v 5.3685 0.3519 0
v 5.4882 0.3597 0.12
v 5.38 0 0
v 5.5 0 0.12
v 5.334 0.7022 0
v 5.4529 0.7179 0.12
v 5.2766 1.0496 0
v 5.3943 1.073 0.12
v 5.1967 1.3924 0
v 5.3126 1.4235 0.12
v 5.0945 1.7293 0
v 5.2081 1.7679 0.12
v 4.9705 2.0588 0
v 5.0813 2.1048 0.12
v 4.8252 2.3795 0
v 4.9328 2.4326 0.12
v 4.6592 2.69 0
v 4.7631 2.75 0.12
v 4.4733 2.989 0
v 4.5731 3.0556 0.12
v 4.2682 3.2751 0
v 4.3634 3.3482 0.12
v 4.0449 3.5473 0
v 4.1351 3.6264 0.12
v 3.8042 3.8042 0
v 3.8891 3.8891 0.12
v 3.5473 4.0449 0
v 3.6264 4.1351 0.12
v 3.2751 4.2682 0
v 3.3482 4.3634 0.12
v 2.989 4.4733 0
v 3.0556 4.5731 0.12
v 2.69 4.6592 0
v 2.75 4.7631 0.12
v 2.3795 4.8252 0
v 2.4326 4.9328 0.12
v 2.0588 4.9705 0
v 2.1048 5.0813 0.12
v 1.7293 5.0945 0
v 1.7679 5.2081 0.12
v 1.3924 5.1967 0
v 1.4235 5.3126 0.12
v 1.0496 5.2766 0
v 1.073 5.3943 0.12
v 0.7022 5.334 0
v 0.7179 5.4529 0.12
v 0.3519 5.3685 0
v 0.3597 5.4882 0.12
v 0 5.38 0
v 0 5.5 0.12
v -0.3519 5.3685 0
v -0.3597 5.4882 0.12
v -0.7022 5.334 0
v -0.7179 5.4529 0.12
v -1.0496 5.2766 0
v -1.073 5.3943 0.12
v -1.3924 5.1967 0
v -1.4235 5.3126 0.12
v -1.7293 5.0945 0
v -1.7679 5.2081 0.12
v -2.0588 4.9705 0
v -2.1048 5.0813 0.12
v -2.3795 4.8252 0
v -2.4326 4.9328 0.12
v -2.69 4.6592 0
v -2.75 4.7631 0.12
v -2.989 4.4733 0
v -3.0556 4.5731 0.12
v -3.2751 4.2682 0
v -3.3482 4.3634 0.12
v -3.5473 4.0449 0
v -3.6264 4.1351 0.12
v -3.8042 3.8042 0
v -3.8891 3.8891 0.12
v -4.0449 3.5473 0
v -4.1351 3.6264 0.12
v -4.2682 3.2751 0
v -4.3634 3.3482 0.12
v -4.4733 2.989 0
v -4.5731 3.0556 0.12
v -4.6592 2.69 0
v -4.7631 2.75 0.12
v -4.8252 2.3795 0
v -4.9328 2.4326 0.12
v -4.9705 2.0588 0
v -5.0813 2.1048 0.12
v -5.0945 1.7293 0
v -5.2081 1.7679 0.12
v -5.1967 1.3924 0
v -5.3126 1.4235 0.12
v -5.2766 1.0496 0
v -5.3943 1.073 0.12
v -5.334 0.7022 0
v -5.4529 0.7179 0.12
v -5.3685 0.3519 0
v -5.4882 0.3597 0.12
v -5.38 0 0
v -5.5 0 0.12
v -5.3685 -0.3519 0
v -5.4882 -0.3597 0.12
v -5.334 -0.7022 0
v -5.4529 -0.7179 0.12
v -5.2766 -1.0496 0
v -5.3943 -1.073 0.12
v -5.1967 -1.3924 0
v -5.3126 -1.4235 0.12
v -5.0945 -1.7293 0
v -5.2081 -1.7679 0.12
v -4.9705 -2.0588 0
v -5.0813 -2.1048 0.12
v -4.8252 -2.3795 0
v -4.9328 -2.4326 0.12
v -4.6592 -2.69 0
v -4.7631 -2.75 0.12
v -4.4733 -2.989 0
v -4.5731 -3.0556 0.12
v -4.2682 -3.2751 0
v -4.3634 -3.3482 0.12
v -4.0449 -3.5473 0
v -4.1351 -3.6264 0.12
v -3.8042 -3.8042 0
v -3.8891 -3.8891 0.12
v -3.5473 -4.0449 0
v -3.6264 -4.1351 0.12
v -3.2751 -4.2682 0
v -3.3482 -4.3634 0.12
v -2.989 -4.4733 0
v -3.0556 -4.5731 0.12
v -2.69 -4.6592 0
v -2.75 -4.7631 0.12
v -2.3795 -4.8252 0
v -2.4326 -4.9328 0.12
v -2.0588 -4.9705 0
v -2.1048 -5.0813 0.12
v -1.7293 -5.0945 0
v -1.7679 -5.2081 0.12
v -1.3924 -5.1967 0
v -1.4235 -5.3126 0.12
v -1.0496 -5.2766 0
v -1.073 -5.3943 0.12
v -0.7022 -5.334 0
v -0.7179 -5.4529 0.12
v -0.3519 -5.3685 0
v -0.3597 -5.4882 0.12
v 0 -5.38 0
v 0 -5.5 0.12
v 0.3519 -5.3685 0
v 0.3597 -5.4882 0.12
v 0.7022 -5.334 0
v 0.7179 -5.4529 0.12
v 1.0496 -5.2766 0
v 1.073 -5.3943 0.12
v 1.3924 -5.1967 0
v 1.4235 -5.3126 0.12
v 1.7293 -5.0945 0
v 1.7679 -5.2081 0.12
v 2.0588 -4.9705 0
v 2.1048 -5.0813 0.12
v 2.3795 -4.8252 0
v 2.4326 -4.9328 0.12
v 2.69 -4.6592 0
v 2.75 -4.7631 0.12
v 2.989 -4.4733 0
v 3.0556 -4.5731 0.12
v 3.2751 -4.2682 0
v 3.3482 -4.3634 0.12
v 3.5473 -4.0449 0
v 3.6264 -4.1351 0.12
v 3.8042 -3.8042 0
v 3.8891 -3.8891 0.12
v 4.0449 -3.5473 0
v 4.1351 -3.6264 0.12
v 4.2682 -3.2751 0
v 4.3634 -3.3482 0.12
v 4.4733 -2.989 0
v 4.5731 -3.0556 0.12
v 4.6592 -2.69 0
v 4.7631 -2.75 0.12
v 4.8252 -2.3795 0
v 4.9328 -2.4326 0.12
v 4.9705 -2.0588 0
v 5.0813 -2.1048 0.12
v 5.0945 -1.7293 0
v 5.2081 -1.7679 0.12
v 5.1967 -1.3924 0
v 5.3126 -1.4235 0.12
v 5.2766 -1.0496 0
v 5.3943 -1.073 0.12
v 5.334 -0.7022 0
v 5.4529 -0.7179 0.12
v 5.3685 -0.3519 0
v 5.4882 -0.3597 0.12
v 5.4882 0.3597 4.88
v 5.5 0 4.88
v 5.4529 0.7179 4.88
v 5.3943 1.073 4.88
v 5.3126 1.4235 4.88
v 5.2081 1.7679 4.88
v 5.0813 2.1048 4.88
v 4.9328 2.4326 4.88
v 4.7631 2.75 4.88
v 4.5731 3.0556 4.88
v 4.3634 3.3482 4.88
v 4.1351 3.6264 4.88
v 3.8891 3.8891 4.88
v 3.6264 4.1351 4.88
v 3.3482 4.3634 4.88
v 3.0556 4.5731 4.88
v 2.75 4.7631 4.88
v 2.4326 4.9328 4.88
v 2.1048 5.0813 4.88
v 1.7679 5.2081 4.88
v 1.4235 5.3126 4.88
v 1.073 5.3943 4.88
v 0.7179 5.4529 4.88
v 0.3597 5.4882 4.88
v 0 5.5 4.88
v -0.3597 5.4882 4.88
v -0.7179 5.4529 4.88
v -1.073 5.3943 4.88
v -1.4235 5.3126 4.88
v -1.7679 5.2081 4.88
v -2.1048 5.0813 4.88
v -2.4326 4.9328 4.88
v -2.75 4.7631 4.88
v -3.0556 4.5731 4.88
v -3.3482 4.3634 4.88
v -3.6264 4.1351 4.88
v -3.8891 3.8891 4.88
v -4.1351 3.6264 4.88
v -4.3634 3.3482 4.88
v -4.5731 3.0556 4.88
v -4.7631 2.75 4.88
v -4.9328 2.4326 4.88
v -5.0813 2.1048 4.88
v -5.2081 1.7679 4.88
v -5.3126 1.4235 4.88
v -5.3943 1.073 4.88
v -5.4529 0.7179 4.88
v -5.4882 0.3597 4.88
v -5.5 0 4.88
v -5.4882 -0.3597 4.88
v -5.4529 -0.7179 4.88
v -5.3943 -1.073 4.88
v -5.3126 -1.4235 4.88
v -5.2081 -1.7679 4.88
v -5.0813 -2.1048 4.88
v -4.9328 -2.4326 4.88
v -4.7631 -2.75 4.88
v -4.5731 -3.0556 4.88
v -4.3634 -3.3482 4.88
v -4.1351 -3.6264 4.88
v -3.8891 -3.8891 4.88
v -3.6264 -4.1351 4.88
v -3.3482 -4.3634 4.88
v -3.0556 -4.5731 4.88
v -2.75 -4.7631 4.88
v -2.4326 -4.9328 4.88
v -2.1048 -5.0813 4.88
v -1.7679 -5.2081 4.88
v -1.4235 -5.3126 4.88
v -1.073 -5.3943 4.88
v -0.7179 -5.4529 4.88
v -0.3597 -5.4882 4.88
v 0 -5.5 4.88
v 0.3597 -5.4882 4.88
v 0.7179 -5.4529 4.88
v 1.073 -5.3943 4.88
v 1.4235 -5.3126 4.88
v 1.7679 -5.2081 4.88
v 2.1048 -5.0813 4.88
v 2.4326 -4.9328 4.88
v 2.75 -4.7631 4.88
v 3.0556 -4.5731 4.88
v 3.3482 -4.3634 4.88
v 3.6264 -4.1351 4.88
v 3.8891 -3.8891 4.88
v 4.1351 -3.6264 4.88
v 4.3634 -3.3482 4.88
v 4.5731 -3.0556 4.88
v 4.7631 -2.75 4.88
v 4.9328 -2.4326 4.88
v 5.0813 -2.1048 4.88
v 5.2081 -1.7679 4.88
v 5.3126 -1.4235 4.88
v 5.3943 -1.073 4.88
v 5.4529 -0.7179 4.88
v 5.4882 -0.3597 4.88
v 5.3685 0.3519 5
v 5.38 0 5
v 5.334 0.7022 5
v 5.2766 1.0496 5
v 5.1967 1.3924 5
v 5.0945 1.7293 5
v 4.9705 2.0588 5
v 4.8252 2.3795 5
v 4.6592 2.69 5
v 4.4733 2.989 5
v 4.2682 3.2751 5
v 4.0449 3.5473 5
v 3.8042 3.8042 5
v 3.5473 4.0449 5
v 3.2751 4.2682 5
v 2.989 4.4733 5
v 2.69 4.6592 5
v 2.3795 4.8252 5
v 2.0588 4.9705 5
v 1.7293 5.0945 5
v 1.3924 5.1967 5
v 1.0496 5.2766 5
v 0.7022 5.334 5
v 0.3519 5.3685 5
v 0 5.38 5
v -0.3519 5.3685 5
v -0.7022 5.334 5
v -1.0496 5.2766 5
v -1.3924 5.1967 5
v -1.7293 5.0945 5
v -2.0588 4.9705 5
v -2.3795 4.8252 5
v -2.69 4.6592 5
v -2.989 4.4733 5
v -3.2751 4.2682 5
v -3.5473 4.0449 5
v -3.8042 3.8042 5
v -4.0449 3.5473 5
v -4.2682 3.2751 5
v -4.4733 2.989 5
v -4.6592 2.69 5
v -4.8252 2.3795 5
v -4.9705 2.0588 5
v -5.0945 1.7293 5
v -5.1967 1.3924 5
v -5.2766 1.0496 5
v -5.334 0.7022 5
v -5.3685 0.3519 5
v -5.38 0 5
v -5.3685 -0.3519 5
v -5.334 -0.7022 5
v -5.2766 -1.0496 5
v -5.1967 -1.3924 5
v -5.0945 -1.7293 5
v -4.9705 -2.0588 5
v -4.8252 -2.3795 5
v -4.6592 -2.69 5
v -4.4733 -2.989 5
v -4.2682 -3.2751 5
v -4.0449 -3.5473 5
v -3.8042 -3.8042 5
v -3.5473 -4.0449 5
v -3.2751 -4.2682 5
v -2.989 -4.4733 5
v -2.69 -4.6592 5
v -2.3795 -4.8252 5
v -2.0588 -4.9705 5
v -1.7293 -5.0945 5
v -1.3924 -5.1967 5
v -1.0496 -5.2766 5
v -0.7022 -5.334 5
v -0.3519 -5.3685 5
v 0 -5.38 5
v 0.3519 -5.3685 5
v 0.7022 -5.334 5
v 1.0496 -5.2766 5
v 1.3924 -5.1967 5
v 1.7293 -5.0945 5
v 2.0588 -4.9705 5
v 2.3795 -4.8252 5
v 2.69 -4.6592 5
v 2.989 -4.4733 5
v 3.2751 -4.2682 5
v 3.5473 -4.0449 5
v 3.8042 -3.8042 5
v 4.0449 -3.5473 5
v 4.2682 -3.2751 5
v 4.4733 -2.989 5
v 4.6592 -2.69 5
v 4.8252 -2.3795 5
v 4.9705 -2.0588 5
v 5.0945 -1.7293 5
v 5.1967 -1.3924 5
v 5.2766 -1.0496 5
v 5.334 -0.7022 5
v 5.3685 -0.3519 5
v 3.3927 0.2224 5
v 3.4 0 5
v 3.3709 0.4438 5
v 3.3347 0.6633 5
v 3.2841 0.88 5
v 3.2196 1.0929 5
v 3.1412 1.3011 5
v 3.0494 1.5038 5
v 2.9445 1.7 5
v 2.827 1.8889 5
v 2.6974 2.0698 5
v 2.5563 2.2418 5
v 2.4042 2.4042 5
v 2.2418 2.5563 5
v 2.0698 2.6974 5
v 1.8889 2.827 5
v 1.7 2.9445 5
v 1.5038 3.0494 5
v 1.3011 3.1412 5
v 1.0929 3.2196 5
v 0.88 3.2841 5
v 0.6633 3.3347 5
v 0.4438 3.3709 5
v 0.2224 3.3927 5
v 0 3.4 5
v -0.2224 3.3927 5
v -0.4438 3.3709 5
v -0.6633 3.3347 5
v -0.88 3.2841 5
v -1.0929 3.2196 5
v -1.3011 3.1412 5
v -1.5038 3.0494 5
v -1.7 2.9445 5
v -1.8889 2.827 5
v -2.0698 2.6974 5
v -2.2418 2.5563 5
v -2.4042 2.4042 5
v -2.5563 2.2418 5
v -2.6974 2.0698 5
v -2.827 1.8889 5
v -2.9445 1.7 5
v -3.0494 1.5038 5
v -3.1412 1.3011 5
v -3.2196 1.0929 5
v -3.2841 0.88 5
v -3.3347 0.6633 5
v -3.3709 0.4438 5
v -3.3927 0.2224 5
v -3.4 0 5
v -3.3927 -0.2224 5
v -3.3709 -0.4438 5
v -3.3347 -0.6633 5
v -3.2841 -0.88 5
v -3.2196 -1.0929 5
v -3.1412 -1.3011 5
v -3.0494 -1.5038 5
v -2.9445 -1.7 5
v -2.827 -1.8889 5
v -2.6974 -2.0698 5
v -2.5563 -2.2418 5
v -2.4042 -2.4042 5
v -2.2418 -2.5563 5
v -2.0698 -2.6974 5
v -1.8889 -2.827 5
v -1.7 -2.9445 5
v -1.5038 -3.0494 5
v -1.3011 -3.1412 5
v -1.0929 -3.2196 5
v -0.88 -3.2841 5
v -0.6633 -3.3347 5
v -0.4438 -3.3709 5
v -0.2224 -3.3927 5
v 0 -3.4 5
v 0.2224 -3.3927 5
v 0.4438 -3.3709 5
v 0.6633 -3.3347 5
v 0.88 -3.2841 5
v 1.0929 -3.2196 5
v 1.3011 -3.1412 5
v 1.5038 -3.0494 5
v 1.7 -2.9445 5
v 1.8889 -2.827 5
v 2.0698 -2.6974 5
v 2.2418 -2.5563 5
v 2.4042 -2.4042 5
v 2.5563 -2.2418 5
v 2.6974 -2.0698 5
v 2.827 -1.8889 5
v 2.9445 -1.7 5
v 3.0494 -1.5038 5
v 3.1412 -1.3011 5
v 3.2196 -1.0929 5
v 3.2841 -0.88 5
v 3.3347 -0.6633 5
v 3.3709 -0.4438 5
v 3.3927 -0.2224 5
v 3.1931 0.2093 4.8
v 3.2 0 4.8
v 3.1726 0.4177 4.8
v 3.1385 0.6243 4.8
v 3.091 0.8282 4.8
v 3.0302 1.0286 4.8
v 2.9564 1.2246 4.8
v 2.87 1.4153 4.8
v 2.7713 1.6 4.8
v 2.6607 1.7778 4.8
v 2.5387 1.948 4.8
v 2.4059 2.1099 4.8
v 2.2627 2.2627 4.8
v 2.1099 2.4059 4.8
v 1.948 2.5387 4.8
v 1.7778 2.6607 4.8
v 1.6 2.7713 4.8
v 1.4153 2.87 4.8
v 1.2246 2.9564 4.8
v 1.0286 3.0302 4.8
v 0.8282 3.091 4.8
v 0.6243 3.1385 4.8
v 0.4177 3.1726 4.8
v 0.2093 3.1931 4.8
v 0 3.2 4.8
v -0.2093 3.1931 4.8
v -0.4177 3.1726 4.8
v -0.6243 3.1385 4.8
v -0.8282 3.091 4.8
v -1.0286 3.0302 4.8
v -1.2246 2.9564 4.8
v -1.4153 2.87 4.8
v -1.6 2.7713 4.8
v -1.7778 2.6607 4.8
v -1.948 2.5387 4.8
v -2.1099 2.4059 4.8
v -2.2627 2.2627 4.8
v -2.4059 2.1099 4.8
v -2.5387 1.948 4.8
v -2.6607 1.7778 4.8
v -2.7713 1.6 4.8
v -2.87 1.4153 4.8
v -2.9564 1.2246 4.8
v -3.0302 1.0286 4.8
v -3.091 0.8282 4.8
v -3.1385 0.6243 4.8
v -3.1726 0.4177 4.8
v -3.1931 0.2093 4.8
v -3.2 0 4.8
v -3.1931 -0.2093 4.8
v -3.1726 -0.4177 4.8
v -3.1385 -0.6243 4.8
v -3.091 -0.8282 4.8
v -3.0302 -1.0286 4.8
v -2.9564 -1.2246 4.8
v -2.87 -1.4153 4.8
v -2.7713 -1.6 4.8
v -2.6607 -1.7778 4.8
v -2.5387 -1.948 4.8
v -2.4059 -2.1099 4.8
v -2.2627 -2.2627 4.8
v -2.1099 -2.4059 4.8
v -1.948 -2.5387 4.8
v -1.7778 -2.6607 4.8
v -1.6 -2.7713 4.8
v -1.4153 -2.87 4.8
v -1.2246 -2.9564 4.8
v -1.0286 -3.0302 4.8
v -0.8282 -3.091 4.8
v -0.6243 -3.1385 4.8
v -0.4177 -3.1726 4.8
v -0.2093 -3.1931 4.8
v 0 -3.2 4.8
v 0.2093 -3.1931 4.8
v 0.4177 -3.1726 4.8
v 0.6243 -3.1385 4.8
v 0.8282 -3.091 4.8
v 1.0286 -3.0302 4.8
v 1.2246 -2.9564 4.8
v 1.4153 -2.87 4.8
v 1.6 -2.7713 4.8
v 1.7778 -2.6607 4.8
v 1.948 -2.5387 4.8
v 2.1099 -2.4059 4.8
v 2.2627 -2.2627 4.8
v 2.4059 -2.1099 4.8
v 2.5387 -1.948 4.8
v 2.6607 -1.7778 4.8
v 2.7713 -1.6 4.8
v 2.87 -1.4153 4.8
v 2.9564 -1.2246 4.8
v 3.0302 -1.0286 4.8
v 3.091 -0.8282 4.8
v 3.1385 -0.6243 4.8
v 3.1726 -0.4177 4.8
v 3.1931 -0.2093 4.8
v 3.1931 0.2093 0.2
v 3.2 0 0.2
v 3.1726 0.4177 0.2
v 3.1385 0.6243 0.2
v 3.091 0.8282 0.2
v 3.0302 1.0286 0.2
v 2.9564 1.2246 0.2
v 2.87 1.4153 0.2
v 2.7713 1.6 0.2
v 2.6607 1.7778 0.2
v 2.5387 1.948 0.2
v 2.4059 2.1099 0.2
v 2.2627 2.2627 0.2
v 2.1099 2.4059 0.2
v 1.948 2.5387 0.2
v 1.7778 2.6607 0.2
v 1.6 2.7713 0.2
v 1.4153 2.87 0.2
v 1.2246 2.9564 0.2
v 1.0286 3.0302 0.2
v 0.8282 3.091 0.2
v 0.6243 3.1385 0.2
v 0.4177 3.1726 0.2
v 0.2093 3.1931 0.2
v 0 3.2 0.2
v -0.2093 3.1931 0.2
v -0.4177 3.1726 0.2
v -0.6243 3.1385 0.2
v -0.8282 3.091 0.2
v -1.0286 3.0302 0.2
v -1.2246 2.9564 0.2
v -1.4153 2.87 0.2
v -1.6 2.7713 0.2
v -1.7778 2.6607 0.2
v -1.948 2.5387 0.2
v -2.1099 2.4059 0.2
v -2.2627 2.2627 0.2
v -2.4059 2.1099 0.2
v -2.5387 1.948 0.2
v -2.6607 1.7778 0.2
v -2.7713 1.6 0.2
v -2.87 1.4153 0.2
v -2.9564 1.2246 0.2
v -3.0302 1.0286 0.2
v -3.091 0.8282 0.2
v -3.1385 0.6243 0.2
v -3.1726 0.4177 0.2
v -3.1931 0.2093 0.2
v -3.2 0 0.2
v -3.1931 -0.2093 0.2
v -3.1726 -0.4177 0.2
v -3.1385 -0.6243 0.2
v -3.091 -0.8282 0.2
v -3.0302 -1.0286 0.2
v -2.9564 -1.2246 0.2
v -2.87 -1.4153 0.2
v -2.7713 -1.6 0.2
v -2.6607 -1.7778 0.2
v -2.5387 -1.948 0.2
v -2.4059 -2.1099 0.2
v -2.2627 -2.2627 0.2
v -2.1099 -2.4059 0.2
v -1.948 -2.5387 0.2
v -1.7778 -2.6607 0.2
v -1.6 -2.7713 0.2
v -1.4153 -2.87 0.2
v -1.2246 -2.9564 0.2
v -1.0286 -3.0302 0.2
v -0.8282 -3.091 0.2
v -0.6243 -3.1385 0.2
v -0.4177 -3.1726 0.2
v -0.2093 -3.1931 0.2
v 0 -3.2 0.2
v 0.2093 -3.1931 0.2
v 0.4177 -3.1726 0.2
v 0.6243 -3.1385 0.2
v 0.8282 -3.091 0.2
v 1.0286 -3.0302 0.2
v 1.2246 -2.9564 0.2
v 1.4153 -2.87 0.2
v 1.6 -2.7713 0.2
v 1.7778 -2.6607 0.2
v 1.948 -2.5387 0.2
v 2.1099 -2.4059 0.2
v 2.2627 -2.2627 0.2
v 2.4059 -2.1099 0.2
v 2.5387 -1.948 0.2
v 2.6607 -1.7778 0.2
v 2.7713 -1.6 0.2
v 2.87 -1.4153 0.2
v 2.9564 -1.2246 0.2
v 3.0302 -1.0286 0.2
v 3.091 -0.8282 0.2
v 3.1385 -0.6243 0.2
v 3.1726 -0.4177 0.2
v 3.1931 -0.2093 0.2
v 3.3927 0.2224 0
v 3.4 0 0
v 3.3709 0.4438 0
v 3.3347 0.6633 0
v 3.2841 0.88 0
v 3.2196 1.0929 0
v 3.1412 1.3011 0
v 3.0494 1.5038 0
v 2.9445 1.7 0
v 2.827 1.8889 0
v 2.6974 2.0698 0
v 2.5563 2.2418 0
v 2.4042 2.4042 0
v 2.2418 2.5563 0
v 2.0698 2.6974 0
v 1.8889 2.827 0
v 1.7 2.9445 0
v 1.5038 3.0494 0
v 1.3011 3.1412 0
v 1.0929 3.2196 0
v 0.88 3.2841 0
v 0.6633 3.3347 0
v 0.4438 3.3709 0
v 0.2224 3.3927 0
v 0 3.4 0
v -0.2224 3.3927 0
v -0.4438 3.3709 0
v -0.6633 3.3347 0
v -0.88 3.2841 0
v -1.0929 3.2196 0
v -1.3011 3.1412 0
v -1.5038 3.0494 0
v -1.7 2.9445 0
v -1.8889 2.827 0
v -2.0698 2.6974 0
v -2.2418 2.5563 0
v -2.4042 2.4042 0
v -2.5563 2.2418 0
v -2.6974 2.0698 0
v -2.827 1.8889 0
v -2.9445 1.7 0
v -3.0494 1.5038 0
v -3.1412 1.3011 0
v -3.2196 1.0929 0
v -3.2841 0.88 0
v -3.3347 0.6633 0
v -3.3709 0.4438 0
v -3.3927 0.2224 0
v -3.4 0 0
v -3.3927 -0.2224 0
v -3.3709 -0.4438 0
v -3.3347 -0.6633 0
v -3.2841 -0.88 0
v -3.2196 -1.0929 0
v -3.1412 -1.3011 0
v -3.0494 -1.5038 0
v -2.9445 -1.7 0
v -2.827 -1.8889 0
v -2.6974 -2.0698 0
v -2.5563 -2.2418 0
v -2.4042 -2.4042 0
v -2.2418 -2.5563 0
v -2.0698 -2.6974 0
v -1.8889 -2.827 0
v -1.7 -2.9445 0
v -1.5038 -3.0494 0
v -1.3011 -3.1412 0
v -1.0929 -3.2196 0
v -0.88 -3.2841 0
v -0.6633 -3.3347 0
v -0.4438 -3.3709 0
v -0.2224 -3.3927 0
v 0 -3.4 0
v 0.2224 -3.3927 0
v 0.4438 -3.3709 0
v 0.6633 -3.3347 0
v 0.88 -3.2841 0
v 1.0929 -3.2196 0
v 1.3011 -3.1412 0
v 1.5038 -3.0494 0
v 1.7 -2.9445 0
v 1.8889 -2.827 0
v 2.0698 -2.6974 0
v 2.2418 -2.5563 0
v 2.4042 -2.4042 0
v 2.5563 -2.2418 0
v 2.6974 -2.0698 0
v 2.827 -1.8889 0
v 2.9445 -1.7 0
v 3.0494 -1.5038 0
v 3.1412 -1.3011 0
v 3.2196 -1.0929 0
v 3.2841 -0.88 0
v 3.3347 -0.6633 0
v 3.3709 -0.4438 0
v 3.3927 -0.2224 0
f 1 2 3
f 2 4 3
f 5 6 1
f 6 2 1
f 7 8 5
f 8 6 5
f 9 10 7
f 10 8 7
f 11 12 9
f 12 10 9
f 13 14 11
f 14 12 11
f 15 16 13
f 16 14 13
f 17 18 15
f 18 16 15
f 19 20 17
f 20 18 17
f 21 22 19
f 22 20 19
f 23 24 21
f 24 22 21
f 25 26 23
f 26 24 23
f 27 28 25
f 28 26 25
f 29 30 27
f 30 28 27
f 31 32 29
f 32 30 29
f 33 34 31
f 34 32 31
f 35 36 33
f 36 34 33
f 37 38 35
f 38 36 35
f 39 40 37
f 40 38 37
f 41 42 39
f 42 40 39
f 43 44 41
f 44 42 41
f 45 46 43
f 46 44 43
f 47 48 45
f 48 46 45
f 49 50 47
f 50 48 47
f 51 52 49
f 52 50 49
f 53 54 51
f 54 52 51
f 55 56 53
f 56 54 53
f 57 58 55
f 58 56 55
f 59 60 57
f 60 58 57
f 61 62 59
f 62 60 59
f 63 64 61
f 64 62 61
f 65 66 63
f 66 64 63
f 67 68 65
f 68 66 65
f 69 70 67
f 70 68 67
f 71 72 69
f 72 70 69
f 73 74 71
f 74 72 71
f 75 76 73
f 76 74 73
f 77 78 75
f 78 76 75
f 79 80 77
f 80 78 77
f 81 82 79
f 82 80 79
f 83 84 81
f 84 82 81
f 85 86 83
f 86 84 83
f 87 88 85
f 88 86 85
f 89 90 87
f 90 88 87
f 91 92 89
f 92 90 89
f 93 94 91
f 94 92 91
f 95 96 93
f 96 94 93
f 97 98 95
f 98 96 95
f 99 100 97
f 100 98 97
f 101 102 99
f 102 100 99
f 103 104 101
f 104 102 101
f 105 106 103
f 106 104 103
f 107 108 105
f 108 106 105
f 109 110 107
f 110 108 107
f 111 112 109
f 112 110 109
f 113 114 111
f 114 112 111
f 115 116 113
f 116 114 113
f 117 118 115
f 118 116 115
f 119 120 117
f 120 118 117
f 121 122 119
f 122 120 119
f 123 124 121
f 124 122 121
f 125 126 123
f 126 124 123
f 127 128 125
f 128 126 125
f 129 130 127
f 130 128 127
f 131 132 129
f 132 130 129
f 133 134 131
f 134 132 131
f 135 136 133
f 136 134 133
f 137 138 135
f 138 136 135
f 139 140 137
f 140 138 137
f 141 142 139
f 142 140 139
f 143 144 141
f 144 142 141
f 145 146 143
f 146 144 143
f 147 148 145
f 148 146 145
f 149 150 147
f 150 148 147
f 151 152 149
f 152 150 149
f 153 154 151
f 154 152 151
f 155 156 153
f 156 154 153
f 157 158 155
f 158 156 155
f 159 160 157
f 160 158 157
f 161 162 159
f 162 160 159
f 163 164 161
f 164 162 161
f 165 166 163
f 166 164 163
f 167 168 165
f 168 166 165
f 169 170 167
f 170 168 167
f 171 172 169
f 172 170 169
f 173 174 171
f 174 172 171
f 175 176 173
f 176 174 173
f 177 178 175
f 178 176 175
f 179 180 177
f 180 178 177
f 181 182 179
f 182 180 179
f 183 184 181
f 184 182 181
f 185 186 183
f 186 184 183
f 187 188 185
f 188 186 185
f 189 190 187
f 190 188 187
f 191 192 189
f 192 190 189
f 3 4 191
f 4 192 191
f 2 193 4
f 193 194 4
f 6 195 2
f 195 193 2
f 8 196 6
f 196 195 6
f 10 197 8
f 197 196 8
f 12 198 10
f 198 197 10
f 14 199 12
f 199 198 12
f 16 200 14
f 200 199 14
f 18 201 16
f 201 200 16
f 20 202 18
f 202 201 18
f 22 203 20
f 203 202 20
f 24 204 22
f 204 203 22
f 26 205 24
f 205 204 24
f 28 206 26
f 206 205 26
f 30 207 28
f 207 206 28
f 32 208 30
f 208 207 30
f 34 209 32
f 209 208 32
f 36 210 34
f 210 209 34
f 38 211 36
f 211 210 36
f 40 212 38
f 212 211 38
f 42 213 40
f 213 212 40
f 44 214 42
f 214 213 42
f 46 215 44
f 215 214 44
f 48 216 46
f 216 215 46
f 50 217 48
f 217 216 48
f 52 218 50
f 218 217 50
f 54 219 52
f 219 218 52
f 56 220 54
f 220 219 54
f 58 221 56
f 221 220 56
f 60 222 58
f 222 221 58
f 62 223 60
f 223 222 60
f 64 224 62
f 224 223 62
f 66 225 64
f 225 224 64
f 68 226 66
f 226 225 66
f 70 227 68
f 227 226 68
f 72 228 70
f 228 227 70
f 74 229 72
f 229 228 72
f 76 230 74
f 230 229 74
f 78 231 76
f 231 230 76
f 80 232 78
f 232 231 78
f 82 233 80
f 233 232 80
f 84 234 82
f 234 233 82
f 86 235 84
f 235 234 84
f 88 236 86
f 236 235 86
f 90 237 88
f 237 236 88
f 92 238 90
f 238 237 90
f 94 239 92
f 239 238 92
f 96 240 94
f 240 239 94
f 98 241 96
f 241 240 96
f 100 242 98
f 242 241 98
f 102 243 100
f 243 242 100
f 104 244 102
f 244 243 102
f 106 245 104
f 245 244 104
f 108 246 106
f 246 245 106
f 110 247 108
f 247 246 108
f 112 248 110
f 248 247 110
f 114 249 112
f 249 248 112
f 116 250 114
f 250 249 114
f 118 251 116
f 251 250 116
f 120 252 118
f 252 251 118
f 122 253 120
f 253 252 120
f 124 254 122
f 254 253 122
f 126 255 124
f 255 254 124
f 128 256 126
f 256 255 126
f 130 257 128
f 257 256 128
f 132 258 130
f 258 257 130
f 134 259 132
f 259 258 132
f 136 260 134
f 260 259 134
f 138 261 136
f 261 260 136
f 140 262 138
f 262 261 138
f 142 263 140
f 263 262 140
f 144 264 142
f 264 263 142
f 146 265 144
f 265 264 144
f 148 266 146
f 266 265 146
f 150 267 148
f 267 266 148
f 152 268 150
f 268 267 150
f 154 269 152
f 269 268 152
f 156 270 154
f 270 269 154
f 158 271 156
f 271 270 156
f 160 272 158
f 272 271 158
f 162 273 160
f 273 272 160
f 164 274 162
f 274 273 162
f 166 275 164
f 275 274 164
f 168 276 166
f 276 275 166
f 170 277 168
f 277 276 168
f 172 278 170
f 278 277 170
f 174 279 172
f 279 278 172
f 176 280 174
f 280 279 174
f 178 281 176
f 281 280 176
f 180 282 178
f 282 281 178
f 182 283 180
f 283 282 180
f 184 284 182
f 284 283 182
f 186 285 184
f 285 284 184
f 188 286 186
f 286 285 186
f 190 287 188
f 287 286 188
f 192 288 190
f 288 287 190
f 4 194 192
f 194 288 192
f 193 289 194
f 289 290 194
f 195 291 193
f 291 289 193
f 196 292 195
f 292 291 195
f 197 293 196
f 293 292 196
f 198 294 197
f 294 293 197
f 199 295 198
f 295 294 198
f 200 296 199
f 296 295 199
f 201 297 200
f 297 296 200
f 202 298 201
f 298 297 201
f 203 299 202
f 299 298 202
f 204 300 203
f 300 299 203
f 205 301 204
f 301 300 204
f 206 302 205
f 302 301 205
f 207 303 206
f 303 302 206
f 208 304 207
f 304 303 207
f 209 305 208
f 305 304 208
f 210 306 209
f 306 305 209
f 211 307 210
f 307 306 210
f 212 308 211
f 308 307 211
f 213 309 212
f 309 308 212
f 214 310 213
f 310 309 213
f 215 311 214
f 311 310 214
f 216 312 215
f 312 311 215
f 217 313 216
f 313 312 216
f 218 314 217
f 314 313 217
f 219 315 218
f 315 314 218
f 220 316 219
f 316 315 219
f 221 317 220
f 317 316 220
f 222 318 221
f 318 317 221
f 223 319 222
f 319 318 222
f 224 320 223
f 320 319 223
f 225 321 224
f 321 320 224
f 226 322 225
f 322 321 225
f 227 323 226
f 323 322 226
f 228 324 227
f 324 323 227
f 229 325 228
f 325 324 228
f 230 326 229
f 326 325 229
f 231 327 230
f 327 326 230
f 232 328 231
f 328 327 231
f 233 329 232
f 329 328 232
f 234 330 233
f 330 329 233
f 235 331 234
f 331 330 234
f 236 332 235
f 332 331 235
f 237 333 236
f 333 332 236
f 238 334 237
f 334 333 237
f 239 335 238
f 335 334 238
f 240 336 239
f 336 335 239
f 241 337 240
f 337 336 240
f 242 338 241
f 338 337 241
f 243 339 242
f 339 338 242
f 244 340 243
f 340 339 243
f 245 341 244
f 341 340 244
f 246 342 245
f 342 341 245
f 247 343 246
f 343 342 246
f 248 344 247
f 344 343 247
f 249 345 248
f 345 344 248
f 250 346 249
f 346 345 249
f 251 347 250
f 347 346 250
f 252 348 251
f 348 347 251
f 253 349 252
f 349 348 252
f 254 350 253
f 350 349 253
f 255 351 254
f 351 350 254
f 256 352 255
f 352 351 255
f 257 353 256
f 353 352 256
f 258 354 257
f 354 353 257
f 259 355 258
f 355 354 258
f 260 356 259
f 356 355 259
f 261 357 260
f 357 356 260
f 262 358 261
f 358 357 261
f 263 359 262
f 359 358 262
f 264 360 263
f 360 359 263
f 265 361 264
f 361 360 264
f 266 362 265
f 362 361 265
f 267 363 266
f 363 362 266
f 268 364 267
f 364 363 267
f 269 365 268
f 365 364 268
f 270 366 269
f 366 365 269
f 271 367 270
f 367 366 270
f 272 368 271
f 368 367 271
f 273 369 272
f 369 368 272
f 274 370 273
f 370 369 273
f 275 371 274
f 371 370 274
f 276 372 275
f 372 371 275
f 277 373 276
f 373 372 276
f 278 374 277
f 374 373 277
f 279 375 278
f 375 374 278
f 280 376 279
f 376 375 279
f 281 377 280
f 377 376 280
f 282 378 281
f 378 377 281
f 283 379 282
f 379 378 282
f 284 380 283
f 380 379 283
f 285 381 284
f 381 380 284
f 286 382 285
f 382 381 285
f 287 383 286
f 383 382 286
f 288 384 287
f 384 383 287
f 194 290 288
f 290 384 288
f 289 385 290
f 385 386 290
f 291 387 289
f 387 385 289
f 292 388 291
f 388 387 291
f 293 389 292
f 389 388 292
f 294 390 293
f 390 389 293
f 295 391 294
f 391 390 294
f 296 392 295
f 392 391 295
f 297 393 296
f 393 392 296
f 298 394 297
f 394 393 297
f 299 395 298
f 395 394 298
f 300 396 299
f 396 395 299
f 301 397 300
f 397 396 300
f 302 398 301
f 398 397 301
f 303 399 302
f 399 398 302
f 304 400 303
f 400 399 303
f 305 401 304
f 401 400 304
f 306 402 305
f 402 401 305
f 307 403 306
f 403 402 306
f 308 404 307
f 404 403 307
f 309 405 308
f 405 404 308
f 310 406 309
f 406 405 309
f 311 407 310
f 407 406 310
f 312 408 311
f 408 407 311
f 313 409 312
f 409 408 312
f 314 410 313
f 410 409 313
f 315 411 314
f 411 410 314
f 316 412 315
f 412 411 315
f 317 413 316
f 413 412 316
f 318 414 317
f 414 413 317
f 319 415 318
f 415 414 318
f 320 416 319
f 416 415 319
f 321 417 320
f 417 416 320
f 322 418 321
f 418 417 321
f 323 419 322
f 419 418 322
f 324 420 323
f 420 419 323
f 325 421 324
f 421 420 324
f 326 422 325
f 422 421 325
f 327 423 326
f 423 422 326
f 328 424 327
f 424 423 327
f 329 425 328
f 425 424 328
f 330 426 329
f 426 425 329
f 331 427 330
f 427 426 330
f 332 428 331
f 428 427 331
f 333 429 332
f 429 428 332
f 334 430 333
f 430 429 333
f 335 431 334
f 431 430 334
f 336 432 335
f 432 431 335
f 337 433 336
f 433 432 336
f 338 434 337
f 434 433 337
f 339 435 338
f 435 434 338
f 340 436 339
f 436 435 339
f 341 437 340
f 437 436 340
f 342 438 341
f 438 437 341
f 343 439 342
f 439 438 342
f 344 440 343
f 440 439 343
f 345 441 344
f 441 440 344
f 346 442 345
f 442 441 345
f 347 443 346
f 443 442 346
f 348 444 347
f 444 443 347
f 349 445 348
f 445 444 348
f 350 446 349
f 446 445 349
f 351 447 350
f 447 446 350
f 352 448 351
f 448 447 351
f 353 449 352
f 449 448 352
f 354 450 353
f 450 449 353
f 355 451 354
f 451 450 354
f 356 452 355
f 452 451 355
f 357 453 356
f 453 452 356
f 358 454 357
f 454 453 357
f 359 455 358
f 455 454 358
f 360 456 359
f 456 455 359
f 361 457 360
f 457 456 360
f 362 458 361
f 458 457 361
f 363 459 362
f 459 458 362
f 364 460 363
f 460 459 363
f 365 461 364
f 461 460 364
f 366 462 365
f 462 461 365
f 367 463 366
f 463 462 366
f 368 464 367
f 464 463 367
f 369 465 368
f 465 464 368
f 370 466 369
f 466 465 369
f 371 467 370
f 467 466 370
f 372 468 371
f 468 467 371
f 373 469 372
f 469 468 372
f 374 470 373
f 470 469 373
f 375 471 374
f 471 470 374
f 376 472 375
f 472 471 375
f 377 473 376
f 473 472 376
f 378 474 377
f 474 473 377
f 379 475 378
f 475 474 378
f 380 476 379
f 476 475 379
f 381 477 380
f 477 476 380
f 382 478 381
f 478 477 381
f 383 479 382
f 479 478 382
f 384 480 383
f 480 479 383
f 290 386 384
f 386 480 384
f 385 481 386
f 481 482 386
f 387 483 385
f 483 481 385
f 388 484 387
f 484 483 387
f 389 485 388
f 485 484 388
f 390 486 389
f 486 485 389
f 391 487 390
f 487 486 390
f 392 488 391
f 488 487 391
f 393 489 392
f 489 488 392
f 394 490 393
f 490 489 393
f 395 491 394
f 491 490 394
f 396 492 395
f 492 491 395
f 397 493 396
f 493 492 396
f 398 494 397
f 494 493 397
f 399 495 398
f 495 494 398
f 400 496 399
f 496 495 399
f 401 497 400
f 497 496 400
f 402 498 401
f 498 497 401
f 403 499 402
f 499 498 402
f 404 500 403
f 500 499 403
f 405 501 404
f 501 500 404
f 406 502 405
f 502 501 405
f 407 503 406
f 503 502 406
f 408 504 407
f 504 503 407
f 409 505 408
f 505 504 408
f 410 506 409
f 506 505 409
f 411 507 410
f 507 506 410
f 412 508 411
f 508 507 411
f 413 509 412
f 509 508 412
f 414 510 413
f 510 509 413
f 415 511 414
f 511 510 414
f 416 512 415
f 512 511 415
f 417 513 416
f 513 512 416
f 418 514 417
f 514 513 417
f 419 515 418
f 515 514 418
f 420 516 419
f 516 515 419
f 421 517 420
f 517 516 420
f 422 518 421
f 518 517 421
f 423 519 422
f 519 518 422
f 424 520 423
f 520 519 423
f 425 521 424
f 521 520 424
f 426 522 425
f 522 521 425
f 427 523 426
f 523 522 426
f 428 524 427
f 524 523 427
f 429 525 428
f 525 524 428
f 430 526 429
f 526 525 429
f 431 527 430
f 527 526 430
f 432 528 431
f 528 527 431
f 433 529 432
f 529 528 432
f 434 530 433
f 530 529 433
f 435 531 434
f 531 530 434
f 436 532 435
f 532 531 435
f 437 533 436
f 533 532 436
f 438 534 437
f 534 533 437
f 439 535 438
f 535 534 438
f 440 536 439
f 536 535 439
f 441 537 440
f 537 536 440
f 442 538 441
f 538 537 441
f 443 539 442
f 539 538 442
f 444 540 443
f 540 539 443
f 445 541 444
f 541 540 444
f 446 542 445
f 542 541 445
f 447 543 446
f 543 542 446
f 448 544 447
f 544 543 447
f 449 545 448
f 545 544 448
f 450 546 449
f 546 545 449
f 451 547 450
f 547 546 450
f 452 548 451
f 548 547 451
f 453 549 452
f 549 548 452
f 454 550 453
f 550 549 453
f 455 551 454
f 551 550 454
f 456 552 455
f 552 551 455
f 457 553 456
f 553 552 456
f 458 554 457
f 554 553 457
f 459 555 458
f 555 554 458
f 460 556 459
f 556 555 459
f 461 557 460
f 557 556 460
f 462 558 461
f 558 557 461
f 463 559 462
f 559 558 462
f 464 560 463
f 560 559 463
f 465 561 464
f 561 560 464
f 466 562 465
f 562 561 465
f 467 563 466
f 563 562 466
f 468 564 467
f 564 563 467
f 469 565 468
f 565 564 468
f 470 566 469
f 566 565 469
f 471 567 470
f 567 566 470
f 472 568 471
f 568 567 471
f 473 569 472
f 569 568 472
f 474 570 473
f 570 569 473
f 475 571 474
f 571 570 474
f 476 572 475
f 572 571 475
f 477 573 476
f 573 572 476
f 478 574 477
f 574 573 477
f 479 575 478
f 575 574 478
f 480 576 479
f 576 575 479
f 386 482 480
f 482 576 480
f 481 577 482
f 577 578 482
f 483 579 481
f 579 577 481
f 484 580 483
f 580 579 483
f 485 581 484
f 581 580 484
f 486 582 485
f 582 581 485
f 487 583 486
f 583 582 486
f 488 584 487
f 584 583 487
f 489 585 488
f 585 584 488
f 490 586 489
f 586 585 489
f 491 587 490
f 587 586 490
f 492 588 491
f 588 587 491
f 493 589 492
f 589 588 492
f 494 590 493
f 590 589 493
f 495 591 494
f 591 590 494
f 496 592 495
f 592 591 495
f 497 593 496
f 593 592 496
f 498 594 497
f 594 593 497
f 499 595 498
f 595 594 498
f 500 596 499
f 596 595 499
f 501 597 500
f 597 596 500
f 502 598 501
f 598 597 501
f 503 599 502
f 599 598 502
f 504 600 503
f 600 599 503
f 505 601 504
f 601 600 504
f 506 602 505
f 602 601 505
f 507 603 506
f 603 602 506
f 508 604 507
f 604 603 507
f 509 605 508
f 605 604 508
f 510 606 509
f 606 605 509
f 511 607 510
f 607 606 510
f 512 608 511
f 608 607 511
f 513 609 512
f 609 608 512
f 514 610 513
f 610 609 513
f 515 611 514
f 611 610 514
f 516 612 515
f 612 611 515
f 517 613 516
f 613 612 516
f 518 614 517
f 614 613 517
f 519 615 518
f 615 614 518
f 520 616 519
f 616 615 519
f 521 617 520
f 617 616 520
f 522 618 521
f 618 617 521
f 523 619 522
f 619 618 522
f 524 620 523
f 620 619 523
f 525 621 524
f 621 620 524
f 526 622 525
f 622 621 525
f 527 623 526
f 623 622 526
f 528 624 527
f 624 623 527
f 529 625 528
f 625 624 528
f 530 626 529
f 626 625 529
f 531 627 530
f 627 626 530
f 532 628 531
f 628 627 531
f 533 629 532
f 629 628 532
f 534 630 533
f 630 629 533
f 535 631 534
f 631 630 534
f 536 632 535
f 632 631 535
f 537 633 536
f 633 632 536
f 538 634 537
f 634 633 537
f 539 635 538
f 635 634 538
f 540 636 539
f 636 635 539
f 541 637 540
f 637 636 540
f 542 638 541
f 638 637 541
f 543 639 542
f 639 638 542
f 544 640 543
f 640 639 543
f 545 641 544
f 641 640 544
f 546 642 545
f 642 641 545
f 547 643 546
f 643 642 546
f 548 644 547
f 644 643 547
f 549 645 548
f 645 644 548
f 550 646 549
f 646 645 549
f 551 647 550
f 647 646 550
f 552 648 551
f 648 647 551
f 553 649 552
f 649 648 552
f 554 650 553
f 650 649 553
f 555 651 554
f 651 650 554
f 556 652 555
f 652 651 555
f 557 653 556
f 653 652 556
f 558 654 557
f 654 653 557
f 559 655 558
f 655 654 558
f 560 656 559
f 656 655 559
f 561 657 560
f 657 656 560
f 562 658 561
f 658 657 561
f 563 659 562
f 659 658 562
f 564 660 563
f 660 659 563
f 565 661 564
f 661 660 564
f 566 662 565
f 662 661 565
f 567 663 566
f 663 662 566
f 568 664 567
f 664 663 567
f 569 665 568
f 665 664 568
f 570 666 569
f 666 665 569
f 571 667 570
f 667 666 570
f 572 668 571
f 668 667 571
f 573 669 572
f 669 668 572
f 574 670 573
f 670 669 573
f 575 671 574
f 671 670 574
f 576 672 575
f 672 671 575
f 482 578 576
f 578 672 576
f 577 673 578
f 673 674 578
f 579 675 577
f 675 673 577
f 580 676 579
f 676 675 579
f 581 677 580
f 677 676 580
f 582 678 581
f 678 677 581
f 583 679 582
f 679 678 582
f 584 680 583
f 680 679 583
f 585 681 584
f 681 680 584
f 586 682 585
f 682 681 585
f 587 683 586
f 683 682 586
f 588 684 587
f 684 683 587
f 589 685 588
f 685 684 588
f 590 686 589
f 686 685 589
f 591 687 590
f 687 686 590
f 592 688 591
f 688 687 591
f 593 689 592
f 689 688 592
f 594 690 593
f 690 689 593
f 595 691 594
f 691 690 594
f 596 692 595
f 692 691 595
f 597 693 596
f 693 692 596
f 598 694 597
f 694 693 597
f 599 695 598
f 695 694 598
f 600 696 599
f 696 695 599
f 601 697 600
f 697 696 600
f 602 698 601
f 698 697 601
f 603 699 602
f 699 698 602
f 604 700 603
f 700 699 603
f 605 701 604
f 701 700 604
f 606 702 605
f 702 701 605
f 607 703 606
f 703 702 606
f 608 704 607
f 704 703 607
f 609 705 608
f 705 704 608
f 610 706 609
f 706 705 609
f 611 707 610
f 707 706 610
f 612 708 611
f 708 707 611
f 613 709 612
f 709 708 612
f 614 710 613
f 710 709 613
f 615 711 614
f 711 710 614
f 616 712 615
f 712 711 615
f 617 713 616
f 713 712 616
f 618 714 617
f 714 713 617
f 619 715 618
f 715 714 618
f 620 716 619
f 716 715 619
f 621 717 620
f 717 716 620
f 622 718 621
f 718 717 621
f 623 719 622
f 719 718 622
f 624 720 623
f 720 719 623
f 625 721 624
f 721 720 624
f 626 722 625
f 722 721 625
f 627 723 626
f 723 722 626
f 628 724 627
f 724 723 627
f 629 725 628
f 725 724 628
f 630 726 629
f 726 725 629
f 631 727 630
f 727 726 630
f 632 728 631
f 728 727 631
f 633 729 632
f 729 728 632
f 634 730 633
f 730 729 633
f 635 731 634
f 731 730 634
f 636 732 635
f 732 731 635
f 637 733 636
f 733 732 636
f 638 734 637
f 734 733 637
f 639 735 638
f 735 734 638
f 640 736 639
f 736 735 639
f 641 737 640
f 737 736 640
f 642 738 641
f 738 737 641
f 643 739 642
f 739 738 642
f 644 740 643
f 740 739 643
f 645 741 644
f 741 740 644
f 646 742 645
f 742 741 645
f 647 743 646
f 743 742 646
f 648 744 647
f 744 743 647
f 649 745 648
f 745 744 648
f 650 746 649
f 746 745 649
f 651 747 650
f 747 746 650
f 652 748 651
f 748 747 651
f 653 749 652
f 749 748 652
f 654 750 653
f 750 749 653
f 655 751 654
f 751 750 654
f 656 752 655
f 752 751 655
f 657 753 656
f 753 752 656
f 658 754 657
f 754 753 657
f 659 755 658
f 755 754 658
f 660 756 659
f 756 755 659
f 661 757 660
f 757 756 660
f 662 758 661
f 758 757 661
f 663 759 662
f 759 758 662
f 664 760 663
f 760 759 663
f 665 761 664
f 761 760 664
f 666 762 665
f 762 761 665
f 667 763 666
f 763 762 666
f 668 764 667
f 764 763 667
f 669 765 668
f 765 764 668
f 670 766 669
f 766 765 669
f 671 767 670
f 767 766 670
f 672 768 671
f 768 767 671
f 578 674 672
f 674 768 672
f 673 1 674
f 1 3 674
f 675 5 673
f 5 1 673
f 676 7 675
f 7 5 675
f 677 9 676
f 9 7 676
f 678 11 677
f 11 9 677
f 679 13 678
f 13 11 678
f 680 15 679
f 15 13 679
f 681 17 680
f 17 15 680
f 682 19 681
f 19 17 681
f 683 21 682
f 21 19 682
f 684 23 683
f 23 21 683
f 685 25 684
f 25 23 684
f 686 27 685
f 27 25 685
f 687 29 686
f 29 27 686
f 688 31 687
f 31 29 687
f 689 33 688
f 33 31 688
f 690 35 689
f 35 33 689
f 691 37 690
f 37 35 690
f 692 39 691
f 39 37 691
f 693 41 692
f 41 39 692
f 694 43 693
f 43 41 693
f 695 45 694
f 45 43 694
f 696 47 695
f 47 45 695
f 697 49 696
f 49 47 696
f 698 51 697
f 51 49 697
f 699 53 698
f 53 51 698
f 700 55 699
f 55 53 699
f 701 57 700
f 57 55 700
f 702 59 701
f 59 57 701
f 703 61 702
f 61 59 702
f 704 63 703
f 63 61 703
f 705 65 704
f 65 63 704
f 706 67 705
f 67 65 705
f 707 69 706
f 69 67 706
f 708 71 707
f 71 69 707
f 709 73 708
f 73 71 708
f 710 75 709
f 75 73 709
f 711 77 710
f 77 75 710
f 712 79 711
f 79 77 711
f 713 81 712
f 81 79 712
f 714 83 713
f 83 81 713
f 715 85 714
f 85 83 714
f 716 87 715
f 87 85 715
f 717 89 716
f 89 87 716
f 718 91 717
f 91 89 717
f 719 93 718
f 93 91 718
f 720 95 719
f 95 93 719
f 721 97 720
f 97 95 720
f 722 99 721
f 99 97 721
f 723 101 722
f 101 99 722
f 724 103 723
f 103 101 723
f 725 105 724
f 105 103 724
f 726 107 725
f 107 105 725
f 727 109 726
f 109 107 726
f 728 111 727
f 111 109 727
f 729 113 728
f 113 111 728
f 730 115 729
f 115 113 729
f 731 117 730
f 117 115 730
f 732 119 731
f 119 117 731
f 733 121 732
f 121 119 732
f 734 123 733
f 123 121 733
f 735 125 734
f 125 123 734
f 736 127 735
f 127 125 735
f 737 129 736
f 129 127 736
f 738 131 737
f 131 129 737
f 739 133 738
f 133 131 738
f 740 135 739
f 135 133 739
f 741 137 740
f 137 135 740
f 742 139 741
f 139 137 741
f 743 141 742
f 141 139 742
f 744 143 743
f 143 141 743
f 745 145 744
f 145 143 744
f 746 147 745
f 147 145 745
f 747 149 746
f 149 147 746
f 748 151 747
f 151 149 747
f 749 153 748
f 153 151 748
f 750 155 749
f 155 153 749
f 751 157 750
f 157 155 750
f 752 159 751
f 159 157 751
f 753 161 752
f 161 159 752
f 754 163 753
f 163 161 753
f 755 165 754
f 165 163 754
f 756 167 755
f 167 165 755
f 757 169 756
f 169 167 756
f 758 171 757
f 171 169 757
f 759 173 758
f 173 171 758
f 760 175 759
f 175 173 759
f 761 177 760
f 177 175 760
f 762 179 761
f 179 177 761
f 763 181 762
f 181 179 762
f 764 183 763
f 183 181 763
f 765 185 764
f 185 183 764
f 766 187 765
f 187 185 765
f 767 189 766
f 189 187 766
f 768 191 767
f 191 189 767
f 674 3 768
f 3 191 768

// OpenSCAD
// OOMP generic catalogue model; units: mm.
// Stud length is additional to body depth. Tapping depths are model assumptions.
variant = "full"; // [full, display]
family = "spacer";
connection_type = "plain";
depth_mm = 5;
stud_length_mm = 0;
tapped_depth_mm = 0;
bore_mm = 6.4;
outer_diameter_mm = 11;
across_flats_mm = 6;
thread_nominal_diameter_mm = 3;
thread_pitch_mm = 0.5;
edge_chamfer_mm = 0.12;
mouth_chamfer_mm = 0.2;
angular_segments = 96;
samples_per_pitch = 16;

// Boundary travels up the outside, then down any tapped/plain bore.
// Equal-height rings at shoulders form the annular shoulder faces.
n = angular_segments;
threaded = family == "standoff";
has_stud = connection_type == "stud_to_tapped" || connection_type == "stud_to_stud";
two_studs = connection_type == "stud_to_stud";
through = !threaded || connection_type == "tapped_to_tapped";
pitch = thread_pitch_mm;
diameter = threaded ? thread_nominal_diameter_mm : bore_mm;
minor = diameter - 5*sqrt(3)*pitch/8;
transition = mouth_chamfer_mm + (threaded ? 5*sqrt(3)*pitch/16 : 0);
tip_chamfer = mouth_chamfer_mm + 17*sqrt(3)*pitch/48;
function sorted(v) = len(v)<=1 ? v : let(p=v[0])
    concat(sorted([for(x=v) if(x<p-1e-8) x]), [p], sorted([for(x=v) if(x>p+1e-8) x]));
function reverse(v) = [for(i=[len(v)-1:-1:0]) v[i]];
function theta(i) = i*360/n;
function fract(x) = x-floor(x);
function phase_distance(i,z) = abs(fract(z/pitch-theta(i)/360+0.5)-0.5);
function thread_r(i,z) = minor/2 + min(5*sqrt(3)*pitch/16,
    max(0,(phase_distance(i,z)-0.125)*pitch*sqrt(3)));
function stud_r(i,z,tip) = min(diameter/2 - (variant=="full" ?
    min(17*sqrt(3)*pitch/48,max(0,(phase_distance(i,z)-0.0625)*pitch*sqrt(3))) : 0),
    diameter/2-tip_chamfer+abs(z-tip));
function body_r(i,z) = (threaded ? across_flats_mm/2/cos(theta(i)%60-30) : outer_diameter_mm/2)
    - max(0,edge_chamfer_mm-min(z,depth_mm-z));
function bore_r(i,z) = max(threaded ? (variant=="full" ? thread_r(i,z) : minor/2) : diameter/2,
    diameter/2+mouth_chamfer_mm-(through ? min(z,depth_mm-z) : depth_mm-z));
function stud_z(a,b,tip) = let(count=variant=="full" ? ceil(stud_length_mm/pitch*samples_per_pitch) : 1)
    sorted(concat([for(i=[0:count]) a+(b-a)*i/count], [tip==a ? tip+tip_chamfer : tip-tip_chamfer]));
body_z = sorted([0,edge_chamfer_mm,depth_mm-edge_chamfer_mm,depth_mm]);
low = through ? 0 : depth_mm-tapped_depth_mm;
count = threaded && variant=="full" ? ceil((depth_mm-low)/pitch*samples_per_pitch) : 1;
bore_z = two_studs ? [] : reverse(sorted(concat(
    [for(i=[0:count]) low+(depth_mm-low)*i/count],
    [depth_mm-mouth_chamfer_mm,depth_mm-transition],
    through ? [mouth_chamfer_mm,transition] : [])));
// Ring descriptors: [height, kind, tip]. Kind: 0 body, 1 stud, 2 bore.
rings = concat(
    has_stud ? [for(z=stud_z(-stud_length_mm,0,-stud_length_mm)) [z,1,-stud_length_mm]] : [],
    [for(z=body_z) [z,0,0]],
    two_studs ? [for(z=stud_z(depth_mm,depth_mm+stud_length_mm,depth_mm+stud_length_mm)) [z,1,depth_mm+stud_length_mm]] : [],
    [for(z=bore_z) [z,2,0]]);
function radius(i,ring) = ring[1]==0 ? body_r(i,ring[0]) :
    ring[1]==1 ? stud_r(i,ring[0],ring[2]) : bore_r(i,ring[0]);
points = concat([for(ring=rings) for(i=[0:n-1])
    [radius(i,ring)*cos(theta(i)),radius(i,ring)*sin(theta(i)),ring[0]]],
    through ? [] : [[0,0,rings[0][0]],[0,0,rings[len(rings)-1][0]]]);
center = len(rings)*n;
last = (len(rings)-1)*n;
// OpenSCAD winding is opposite to STL winding.
faces = concat(
    [for(j=[0:len(rings)-(through ? 1 : 2)]) for(i=[0:n-1]) each
        let(a=j*n+i,b=j*n+(i+1)%n,c=((j+1)%len(rings))*n+(i+1)%n,d=((j+1)%len(rings))*n+i)
        [[a,c,b],[a,d,c]]],
    through ? [] : [for(i=[0:n-1]) each let(k=(i+1)%n)
        [[center,i,k],[center+1,last+k,last+i]]]);
assert(family=="spacer" || family=="standoff");
assert(!threaded || connection_type=="tapped_to_tapped" || has_stud);
assert(depth_mm>0 && diameter>0 && pitch>0);
assert(variant=="full" || variant=="display");
assert(n>=24 && n%12==0 && samples_per_pitch>=8);
assert(mouth_chamfer_mm>0 && mouth_chamfer_mm<depth_mm/2);
assert(edge_chamfer_mm>=0 && edge_chamfer_mm<depth_mm/2);
assert(diameter+4*max(mouth_chamfer_mm,edge_chamfer_mm) < (threaded ? across_flats_mm : outer_diameter_mm));
assert(!has_stud || stud_length_mm>2*mouth_chamfer_mm);
assert(!through || !threaded || 2*transition<depth_mm);
assert(connection_type!="stud_to_tapped" || (tapped_depth_mm>transition && tapped_depth_mm<depth_mm));
color([0.86,0.85,0.81]) polyhedron(points=points,faces=faces,convexity=20);
